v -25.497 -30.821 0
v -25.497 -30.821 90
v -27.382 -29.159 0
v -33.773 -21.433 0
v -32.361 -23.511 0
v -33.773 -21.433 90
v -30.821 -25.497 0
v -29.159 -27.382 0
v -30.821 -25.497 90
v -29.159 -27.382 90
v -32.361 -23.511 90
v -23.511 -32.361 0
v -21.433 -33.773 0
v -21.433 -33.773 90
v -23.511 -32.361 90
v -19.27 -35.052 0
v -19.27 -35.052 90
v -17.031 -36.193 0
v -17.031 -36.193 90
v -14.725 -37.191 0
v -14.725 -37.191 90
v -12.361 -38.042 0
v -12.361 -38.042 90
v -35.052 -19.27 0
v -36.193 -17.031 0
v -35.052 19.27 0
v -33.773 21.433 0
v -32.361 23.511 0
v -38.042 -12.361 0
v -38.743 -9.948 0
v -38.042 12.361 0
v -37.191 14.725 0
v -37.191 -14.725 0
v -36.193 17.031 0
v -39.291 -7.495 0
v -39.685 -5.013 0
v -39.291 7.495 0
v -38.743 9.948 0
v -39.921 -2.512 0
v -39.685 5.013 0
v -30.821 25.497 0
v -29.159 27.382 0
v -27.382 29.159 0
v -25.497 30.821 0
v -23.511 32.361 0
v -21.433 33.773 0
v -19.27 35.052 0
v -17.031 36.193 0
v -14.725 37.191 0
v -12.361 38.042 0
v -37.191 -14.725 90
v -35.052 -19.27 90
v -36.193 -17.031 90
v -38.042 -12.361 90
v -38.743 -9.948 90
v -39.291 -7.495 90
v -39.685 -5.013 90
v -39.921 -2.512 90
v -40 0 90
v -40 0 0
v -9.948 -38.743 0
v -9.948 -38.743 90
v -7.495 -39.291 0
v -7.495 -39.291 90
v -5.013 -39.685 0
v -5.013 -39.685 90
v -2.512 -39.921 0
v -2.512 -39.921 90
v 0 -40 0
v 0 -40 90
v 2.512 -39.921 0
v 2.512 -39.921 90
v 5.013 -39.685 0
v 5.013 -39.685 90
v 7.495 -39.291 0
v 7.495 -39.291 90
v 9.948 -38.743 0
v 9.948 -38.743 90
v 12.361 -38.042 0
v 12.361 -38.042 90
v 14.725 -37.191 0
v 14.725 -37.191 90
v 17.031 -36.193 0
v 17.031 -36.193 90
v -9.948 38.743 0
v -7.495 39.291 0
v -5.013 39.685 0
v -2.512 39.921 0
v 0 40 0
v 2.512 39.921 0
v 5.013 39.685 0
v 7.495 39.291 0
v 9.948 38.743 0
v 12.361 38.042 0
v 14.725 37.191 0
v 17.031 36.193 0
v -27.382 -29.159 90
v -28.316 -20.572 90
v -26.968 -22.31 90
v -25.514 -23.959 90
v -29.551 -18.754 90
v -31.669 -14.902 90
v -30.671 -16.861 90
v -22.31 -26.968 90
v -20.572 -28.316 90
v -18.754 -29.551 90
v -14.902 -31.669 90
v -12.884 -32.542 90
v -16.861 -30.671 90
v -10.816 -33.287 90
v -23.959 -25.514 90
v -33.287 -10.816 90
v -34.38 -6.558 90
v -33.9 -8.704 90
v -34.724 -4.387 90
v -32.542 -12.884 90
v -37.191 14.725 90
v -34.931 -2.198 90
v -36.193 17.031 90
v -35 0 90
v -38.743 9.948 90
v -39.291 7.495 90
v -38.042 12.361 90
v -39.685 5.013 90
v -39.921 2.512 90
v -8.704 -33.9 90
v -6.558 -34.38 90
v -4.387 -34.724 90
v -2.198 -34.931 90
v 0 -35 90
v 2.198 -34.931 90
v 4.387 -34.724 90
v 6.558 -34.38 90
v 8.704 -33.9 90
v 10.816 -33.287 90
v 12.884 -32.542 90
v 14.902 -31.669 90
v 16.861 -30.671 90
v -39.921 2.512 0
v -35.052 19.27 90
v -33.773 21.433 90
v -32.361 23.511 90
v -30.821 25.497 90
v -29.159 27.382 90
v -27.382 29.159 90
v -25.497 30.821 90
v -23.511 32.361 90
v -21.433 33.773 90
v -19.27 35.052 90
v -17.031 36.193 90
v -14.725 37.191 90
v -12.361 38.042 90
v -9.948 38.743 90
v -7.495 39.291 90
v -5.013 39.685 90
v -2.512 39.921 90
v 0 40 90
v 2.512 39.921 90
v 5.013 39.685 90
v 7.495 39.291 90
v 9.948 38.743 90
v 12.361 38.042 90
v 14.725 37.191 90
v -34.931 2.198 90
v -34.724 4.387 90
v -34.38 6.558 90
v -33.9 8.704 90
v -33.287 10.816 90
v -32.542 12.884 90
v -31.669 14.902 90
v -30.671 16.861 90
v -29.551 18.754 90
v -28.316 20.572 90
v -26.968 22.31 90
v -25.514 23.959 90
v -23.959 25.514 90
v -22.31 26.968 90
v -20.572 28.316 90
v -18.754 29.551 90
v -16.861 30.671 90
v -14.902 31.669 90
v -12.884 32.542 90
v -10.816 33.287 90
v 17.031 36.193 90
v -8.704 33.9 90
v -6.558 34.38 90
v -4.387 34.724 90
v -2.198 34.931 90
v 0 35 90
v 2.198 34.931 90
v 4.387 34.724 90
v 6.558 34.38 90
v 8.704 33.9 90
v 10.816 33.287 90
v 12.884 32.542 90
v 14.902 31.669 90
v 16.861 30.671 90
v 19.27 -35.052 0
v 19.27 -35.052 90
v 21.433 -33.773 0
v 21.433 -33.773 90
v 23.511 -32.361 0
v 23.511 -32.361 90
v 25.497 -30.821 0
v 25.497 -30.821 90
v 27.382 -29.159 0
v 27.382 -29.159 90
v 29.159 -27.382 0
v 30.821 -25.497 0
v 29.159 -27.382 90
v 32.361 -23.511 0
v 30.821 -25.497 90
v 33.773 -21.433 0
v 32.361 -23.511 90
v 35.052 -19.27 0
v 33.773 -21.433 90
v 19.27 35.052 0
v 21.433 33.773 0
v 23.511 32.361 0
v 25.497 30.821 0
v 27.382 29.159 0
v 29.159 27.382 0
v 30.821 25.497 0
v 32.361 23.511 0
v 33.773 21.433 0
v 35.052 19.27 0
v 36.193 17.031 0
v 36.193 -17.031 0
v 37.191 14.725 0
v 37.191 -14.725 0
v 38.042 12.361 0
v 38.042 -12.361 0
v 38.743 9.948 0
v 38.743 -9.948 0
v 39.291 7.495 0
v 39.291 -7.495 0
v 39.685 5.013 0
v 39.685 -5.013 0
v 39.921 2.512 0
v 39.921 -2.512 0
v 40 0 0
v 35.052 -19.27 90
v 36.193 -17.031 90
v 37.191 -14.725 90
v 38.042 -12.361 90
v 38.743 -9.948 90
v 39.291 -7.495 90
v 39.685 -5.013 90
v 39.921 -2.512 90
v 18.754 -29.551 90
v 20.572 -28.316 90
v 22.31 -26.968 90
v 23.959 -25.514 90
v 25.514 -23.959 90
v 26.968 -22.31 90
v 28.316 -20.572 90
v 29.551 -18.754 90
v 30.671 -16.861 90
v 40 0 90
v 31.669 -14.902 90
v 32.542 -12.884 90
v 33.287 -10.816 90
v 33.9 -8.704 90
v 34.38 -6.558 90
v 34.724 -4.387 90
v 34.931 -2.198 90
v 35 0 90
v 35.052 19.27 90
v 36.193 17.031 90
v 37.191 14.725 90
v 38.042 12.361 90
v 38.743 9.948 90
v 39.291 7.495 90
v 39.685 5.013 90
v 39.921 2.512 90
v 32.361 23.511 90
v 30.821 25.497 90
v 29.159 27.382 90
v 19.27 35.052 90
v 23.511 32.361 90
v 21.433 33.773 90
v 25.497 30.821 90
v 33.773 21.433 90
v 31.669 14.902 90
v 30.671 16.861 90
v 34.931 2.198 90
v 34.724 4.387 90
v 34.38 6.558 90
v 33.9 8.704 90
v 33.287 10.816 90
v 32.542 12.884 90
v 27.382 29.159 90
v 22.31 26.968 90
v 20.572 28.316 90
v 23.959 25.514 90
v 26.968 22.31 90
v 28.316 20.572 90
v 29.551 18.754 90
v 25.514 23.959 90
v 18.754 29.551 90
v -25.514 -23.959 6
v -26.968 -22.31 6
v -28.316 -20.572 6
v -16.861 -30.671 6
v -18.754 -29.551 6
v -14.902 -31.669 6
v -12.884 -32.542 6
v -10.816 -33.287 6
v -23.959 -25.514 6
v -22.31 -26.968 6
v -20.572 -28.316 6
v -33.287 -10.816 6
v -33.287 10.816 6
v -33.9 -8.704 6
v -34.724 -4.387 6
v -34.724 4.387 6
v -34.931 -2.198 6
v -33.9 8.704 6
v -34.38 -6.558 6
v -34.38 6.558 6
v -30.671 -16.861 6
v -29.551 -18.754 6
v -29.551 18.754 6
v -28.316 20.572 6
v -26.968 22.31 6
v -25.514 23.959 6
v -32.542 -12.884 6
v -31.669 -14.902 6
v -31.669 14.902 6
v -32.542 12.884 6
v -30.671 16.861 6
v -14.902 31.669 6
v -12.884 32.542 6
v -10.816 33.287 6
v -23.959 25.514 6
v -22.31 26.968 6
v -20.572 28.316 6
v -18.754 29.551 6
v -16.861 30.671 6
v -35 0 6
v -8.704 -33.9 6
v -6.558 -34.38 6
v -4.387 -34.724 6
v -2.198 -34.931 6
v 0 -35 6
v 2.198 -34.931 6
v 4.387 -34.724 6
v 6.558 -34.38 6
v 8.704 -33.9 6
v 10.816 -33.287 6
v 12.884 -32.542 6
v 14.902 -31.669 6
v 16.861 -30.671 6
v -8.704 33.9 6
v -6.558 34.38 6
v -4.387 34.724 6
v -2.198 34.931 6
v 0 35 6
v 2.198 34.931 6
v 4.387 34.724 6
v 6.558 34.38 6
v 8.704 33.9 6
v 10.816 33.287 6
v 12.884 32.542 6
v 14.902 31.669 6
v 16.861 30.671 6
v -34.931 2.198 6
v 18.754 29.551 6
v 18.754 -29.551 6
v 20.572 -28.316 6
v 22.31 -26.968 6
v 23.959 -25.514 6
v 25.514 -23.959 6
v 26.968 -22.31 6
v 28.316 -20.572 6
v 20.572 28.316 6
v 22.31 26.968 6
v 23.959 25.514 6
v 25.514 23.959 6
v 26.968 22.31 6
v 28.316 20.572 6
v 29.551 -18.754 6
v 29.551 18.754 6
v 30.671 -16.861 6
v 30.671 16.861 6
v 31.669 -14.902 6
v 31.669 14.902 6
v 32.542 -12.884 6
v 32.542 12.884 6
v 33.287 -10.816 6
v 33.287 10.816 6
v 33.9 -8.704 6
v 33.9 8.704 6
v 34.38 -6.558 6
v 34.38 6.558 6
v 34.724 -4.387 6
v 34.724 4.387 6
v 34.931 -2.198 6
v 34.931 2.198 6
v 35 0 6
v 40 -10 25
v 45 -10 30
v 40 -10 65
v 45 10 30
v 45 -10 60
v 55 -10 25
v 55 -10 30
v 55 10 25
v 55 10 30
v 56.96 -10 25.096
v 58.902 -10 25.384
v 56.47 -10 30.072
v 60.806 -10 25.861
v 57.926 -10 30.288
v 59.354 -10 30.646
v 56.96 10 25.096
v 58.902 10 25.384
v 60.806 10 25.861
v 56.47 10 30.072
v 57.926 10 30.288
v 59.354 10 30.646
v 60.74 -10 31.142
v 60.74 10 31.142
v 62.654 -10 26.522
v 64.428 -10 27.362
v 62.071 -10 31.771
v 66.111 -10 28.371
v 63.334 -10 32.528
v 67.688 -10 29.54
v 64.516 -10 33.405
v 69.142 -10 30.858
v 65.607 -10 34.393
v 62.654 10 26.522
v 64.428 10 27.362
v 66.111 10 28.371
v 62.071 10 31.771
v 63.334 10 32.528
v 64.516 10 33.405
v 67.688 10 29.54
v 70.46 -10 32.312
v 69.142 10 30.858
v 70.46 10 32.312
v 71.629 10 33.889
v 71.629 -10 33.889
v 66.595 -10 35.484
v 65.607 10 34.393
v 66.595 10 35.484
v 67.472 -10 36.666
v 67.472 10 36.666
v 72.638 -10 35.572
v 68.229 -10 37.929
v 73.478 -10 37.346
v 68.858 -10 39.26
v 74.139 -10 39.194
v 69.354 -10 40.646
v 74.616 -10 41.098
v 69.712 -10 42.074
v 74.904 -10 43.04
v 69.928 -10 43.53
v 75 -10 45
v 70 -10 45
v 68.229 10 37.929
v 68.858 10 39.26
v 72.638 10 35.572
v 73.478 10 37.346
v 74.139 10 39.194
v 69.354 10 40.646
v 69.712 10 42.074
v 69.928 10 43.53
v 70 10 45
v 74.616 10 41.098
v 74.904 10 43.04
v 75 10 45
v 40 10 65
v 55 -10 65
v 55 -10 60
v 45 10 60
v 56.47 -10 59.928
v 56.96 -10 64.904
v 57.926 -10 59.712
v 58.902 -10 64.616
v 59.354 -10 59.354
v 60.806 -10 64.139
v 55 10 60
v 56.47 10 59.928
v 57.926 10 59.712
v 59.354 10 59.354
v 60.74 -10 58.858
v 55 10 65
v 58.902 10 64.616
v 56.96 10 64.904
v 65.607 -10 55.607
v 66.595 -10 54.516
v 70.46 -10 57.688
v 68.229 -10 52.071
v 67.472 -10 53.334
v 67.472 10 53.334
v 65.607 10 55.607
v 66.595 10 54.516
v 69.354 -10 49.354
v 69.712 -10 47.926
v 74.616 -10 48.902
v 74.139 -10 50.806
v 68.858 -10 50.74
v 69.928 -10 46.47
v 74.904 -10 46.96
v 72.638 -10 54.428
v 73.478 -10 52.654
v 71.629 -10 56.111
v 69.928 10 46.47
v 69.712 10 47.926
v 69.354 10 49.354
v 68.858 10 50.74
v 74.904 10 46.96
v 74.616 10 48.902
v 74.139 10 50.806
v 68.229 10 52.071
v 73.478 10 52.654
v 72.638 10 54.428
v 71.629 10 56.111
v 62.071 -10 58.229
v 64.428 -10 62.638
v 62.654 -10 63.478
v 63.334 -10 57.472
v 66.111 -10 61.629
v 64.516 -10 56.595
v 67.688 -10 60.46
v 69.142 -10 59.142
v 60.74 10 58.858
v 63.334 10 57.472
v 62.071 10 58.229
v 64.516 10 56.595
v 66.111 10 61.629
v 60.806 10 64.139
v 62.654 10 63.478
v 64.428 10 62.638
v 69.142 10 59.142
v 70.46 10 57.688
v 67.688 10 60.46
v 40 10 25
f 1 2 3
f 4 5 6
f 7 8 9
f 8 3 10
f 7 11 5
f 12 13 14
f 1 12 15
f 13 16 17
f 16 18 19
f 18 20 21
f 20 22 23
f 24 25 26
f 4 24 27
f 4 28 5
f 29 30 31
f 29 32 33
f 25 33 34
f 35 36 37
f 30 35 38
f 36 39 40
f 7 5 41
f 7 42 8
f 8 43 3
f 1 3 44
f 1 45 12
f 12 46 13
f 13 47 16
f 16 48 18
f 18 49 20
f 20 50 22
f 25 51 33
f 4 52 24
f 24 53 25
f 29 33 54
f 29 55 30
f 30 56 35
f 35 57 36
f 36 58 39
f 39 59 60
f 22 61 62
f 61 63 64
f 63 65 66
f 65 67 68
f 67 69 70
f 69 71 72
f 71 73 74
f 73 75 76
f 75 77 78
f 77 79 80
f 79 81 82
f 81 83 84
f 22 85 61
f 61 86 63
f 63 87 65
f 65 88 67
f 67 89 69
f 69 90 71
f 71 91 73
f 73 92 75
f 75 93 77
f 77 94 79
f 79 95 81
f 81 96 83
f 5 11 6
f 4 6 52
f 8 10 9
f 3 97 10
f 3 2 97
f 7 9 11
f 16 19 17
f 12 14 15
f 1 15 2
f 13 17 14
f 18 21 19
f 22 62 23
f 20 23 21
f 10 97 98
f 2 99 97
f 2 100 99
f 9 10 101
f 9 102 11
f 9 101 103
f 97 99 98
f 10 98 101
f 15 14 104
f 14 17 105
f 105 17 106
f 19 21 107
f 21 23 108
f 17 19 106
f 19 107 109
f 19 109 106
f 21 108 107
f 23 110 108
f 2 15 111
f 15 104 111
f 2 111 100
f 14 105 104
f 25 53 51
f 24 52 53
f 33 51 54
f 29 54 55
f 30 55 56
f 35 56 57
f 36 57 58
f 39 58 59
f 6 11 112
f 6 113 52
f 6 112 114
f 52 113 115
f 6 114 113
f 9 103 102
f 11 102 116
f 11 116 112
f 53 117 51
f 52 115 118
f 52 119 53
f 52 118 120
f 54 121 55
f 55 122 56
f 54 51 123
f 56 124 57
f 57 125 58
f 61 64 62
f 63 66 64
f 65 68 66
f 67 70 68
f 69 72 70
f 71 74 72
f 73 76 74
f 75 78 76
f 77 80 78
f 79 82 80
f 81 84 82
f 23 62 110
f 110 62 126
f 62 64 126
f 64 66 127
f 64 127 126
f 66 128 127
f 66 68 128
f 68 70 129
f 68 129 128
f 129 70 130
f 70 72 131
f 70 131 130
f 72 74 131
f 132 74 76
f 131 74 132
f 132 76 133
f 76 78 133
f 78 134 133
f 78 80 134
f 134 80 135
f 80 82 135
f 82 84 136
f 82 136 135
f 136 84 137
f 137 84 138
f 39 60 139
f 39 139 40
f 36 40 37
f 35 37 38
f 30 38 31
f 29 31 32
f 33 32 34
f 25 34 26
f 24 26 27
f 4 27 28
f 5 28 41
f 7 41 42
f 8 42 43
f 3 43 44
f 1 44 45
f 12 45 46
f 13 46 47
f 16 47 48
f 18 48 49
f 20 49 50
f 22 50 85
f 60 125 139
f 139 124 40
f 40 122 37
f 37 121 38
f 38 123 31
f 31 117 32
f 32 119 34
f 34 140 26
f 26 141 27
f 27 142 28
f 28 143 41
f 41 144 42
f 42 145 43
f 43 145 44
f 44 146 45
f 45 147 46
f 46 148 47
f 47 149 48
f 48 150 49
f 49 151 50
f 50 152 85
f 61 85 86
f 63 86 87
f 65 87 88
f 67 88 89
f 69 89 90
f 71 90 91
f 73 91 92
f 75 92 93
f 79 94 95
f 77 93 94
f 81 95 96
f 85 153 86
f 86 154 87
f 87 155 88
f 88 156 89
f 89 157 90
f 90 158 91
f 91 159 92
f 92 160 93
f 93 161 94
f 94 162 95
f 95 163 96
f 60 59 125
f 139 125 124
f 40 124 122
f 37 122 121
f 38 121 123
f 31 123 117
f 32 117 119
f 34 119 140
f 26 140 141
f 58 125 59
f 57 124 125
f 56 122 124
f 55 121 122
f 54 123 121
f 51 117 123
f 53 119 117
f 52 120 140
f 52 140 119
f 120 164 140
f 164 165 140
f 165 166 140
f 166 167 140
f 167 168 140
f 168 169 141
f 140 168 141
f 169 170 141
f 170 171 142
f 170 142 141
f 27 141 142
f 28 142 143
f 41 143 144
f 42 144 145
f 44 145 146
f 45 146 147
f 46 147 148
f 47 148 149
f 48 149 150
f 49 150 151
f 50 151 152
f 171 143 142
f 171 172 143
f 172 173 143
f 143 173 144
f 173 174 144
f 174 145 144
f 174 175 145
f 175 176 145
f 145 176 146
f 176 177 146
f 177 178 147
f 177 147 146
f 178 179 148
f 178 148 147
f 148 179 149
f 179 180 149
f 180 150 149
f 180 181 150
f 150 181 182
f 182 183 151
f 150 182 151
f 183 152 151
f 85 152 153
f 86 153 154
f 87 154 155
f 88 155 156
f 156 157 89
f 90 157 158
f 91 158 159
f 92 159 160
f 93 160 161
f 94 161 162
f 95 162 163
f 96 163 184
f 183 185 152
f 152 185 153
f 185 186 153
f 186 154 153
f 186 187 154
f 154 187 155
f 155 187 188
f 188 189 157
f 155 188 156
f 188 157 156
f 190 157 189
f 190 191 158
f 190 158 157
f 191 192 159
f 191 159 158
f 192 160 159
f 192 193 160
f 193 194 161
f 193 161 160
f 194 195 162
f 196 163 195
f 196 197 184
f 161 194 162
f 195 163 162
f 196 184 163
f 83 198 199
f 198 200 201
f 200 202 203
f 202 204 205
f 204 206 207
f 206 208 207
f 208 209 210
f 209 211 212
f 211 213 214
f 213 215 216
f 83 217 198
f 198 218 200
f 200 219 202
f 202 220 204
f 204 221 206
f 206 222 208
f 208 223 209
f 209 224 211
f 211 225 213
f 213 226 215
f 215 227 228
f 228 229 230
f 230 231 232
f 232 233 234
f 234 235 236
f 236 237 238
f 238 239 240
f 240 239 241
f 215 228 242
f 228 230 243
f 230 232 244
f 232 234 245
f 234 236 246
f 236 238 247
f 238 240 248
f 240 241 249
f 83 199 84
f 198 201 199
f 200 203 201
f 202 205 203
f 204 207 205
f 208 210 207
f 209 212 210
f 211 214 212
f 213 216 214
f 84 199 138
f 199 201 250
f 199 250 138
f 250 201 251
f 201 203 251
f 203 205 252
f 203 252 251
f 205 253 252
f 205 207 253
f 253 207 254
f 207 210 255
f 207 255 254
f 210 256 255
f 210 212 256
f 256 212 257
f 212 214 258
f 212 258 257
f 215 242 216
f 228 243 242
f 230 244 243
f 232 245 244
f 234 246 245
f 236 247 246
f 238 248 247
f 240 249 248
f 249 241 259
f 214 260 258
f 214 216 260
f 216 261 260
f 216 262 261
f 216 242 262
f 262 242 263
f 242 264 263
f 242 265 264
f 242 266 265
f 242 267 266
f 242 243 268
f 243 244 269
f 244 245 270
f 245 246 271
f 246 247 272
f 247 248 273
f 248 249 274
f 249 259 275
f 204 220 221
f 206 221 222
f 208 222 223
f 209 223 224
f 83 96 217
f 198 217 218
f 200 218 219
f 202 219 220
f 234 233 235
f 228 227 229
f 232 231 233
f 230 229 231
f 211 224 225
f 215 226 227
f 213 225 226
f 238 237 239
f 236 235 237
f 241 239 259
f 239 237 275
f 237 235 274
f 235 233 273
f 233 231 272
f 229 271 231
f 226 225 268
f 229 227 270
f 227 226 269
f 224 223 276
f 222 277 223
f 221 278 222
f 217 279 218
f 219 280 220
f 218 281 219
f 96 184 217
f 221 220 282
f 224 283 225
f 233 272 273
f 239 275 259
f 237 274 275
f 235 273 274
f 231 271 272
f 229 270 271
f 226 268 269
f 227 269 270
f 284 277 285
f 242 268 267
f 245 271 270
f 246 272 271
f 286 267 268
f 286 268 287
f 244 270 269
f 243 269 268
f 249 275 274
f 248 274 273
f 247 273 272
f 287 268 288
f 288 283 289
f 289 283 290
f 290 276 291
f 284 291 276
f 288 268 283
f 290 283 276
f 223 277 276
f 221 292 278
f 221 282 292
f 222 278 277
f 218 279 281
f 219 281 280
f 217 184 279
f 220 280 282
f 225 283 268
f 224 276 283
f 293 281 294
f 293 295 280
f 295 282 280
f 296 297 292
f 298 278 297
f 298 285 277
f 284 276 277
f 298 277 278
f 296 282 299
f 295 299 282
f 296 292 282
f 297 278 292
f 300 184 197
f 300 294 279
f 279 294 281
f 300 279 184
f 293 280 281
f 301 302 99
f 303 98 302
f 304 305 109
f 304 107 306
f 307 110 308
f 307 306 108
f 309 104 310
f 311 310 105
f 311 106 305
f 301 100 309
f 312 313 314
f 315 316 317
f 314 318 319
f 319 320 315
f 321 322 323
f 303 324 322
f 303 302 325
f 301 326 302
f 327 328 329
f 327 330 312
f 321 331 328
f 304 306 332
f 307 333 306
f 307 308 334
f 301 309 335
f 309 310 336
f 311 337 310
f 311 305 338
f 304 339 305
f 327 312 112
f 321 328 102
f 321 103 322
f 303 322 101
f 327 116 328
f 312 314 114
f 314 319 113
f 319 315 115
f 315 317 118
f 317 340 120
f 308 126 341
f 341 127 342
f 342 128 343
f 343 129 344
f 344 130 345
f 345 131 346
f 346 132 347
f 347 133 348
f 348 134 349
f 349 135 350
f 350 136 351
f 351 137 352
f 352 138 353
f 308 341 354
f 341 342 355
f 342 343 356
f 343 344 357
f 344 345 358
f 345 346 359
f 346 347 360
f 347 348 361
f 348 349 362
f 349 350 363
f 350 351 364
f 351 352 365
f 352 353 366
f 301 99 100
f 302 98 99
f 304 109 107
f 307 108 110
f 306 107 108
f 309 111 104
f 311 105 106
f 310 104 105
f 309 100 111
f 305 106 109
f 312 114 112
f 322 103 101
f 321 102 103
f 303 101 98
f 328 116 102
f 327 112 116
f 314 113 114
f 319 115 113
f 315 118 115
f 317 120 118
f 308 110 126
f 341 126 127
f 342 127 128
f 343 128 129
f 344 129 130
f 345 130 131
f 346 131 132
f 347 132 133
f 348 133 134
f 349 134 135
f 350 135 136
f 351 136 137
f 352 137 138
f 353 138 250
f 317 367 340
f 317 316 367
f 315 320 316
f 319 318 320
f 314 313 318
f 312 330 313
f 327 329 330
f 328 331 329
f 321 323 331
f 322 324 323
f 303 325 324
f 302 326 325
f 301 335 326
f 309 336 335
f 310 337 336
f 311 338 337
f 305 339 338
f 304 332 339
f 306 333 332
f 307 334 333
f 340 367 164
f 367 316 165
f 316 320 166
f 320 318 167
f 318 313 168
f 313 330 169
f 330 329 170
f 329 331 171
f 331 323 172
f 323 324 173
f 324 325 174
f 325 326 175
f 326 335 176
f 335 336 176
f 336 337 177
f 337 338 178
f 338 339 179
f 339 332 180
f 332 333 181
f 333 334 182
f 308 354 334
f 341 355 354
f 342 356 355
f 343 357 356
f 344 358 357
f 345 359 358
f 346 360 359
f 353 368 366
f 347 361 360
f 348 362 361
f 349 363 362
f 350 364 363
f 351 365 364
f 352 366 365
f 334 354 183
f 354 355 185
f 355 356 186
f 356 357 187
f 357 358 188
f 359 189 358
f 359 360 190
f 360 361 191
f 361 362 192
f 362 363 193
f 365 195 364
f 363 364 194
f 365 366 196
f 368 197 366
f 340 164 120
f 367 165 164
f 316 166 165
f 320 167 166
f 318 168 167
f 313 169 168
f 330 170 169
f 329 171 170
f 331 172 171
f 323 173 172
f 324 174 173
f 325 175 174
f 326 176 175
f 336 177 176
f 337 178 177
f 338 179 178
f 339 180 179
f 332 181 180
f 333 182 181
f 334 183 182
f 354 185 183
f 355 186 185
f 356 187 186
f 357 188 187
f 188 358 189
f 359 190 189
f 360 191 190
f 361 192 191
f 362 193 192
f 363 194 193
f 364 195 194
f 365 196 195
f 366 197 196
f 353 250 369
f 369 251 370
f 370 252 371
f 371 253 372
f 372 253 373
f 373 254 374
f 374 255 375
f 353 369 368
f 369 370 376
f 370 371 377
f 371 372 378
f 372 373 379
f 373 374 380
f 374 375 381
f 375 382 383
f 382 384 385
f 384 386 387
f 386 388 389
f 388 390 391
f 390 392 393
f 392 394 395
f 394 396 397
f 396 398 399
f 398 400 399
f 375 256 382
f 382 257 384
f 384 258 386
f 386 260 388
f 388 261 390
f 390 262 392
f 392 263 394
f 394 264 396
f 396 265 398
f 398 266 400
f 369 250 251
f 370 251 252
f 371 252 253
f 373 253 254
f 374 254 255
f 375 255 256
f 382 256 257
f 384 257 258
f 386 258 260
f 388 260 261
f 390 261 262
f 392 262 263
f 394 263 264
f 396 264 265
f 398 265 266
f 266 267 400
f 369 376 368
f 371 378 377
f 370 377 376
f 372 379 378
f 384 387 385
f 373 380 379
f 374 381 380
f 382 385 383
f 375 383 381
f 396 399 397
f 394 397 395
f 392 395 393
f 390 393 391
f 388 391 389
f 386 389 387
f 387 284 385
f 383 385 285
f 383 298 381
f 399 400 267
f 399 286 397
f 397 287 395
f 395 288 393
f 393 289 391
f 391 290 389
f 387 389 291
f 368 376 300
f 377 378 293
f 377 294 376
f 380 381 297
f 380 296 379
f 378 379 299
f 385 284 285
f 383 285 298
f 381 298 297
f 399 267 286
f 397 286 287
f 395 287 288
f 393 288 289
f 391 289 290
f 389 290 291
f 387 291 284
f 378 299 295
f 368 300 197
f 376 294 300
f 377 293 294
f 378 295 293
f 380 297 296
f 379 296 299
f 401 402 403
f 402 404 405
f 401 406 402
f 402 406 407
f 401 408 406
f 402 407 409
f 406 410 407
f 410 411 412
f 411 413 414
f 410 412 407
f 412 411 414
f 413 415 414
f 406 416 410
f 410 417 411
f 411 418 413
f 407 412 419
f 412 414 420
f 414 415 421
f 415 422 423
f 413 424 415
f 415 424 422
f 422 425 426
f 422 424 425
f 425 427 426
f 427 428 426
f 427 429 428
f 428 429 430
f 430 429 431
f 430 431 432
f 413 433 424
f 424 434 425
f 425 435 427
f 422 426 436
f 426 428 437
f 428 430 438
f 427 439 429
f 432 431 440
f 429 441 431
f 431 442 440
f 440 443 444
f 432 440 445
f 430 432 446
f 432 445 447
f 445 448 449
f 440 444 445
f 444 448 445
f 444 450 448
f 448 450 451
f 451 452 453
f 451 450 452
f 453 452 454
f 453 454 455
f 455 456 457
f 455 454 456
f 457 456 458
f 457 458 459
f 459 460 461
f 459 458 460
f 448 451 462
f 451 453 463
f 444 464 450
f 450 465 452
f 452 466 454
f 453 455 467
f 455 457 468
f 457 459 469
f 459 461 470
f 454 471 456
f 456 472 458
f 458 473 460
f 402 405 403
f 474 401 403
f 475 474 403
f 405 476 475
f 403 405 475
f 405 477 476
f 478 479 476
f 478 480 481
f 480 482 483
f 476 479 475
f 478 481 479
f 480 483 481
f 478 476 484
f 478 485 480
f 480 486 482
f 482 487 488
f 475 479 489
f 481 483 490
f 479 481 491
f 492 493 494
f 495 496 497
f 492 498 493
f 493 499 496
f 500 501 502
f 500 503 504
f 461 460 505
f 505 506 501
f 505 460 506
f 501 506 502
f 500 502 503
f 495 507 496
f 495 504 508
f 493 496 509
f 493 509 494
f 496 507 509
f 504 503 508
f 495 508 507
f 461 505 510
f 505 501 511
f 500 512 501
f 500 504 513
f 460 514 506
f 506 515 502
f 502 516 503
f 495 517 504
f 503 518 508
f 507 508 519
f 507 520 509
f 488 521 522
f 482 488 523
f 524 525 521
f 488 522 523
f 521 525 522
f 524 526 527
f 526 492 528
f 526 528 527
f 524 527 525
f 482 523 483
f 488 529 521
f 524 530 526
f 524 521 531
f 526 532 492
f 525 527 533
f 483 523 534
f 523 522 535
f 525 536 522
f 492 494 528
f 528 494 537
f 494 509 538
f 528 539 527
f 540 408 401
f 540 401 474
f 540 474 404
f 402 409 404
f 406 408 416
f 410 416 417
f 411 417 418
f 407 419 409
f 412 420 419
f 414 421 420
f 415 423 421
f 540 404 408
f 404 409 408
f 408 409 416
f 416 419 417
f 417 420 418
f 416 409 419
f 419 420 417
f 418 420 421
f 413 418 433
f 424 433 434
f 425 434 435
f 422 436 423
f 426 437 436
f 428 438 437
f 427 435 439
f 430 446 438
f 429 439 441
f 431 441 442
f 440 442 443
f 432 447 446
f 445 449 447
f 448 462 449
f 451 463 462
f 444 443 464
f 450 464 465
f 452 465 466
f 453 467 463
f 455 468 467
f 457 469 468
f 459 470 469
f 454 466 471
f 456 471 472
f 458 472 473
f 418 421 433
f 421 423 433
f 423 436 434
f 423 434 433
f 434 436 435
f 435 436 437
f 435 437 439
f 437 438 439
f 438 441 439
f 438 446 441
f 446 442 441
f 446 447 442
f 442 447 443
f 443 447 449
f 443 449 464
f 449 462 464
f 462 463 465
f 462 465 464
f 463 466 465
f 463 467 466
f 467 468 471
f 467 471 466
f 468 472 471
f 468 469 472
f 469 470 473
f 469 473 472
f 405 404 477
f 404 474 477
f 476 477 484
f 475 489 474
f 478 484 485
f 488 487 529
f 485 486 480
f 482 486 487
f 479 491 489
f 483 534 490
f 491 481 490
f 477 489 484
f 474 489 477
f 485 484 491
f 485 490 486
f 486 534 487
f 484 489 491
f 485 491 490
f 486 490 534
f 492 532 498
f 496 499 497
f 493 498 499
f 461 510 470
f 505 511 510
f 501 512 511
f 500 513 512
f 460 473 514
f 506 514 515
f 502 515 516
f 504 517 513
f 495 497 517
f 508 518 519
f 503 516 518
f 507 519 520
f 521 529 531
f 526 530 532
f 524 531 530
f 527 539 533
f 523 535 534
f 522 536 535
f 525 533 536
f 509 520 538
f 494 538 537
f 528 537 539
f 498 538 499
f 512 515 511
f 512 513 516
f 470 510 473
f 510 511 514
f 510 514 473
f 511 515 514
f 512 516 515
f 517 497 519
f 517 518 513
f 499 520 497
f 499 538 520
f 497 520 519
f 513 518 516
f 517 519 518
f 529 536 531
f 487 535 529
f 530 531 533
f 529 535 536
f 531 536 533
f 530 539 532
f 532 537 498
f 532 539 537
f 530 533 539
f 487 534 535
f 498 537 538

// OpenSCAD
// mug 本体パラメータ
outer_d = 80;
inner_d = 70;
height = 90;
bottom_t = 6;

// 取手パラメータ
handle_open_h = 30;    // 空間 高さ
handle_open_w = 25;    // 空間 幅
handle_wall   = 5;     // 取手肉厚
handle_depth  = 20;    // 取手奥行

// 計算
wall_t   = (outer_d - inner_d)/2;  // マグ肉厚 5
R_i      = handle_open_h/2;
rect_i   = handle_open_w - R_i;
T        = handle_wall;
R_o      = R_i + T;
rect_o   = rect_i + T;

// D字形状モジュール（半円＋直線）
module D_shape(r, rect_w) {
  union() {
    translate([0, -r]) square([rect_w, 2*r]);
    difference() {
      translate([rect_w, 0]) circle(r = r, $fn = 64);
      translate([-1000, -1000]) square([rect_w + 1000, 2000]);
    }
  }
}
// D字リング（外側D−内側D）
module D_ring() {
  difference() {
    D_shape(R_o, rect_o);
    translate([T, 0]) D_shape(R_i, rect_i);
  }
}
// 取手形状
module handle() {
  rotate([90, 0, 0])
    linear_extrude(height = handle_depth, center = true)
      D_ring();
}
// マグ本体
module mug() {
  difference() {
    cylinder(r = outer_d/2, h = height, $fn = 100);
    translate([0, 0, bottom_t])
      cylinder(r = inner_d/2, h = height - bottom_t, $fn = 100);
  }
}

// 結合
union() {
  mug();
  translate([outer_d/2, 0, height/2])
    handle();
}
